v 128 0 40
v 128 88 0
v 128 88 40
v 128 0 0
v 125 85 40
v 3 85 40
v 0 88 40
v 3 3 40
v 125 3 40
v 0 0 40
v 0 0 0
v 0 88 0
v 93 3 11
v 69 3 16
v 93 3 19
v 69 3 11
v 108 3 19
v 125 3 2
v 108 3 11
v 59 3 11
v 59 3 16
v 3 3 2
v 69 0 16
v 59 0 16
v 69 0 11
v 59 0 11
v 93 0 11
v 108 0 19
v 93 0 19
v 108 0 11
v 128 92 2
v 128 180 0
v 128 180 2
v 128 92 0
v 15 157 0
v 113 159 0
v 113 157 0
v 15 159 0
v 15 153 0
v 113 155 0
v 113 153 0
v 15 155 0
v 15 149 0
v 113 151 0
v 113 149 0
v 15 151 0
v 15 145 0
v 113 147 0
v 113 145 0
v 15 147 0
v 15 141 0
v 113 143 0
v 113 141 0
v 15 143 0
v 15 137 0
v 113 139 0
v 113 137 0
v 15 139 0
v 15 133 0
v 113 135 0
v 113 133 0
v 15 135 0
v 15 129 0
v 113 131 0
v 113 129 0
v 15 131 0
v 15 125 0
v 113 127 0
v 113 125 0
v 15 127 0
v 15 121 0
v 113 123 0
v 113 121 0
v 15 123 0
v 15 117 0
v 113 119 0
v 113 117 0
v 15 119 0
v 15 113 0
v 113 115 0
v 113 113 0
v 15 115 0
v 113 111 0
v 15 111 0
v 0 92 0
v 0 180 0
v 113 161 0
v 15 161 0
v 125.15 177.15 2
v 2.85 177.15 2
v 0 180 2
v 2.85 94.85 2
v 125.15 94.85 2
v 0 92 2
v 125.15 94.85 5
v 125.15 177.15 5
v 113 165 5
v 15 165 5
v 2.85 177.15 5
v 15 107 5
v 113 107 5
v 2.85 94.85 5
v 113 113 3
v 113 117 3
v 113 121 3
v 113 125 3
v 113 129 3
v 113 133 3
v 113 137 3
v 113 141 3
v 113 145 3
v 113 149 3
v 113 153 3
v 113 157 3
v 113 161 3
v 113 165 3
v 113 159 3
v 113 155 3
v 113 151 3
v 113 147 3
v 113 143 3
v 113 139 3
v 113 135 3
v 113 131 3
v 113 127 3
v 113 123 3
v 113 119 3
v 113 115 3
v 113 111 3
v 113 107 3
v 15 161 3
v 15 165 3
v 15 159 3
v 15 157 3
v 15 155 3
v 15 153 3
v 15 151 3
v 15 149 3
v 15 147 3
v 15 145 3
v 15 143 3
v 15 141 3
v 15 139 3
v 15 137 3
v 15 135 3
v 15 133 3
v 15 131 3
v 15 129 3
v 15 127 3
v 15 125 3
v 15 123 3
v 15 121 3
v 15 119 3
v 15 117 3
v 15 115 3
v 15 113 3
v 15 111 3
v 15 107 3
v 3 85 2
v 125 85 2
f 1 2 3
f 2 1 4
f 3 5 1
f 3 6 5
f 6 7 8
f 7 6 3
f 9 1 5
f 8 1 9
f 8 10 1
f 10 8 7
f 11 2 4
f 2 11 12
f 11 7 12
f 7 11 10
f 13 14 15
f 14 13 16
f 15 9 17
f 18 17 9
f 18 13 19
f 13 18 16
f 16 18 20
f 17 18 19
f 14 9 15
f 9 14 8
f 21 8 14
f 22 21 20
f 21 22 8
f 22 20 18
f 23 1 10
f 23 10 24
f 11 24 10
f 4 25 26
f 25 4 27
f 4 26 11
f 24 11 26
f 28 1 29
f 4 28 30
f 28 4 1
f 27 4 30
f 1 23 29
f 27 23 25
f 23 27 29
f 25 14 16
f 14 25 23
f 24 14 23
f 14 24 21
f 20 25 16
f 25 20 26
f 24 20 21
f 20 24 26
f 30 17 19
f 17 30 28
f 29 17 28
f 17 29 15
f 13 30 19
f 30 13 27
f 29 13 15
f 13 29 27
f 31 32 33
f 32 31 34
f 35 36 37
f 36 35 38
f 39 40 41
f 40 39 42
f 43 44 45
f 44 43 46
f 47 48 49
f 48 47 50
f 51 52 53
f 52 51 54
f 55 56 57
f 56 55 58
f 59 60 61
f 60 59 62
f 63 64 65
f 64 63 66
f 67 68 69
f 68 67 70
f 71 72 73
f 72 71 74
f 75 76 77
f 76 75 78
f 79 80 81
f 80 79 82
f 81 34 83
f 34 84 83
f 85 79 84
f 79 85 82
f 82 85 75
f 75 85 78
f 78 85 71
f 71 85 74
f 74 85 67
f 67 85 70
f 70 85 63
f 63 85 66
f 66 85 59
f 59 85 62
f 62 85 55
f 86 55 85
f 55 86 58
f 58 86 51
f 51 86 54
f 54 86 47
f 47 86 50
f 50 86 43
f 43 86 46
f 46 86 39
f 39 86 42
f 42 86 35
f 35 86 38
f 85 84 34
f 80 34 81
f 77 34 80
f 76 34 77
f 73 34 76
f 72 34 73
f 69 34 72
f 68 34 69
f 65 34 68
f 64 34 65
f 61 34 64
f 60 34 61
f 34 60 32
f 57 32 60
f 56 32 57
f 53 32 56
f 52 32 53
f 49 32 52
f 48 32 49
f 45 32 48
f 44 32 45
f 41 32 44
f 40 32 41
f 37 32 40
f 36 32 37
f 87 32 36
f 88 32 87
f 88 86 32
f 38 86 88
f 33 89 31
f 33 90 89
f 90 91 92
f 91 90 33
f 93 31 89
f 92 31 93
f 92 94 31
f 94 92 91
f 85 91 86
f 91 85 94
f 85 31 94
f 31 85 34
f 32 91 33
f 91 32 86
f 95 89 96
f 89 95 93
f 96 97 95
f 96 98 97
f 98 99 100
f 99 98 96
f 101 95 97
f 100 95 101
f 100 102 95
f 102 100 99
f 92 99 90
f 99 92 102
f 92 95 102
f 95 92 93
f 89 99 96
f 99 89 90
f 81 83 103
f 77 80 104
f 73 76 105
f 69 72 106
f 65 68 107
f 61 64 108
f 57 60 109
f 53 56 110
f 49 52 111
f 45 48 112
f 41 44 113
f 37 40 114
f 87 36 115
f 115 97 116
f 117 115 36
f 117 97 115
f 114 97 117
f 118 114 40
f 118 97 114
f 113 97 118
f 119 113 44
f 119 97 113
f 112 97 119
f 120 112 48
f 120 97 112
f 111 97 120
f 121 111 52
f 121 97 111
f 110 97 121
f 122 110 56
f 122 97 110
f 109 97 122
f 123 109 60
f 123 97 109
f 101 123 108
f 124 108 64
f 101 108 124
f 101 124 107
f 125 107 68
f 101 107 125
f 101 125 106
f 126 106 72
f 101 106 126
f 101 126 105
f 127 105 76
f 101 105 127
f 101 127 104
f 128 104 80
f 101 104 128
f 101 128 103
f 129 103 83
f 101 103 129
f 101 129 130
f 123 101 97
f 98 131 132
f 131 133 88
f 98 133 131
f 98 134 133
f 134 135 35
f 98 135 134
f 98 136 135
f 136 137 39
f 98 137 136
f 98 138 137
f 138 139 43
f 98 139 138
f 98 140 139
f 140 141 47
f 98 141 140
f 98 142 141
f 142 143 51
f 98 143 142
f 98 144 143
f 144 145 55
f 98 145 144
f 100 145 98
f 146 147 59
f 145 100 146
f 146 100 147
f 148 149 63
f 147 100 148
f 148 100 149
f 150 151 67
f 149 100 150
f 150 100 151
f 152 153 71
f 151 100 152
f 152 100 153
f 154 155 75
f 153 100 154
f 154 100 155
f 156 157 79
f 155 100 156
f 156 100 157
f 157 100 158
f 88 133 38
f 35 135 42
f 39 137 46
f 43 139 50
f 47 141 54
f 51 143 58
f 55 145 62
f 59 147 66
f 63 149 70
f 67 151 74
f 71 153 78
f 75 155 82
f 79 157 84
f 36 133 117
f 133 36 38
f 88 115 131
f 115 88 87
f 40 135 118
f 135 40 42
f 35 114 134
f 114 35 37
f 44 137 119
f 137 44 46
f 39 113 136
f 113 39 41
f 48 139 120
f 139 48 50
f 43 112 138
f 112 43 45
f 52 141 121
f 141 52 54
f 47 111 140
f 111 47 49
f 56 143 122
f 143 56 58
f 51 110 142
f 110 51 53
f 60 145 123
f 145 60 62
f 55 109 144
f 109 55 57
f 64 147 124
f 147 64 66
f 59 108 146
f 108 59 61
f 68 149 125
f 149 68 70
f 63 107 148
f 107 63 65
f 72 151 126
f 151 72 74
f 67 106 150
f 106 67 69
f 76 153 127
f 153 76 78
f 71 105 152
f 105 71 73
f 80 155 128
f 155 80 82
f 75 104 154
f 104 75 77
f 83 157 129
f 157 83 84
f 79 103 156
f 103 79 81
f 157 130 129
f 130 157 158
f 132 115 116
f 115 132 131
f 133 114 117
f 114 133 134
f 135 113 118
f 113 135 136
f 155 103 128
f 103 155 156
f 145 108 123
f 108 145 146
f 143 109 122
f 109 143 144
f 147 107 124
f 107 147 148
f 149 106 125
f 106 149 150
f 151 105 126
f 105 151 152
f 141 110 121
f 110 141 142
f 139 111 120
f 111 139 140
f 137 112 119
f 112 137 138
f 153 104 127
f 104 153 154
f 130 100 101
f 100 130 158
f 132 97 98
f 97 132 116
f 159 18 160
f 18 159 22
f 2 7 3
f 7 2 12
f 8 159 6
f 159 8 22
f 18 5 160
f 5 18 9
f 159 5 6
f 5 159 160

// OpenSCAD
//Boks til liten forsterkerenhet.
//Dimensjoner
walls = 3;

inner_depth = 82;
inner_width = 122;

depth = inner_depth + 2 * walls;
width = inner_width + 2 * walls;

height = 40;
lid = 2;
lid_vents = 0.4; //how many percent of the lid should be vented?
vent_lid_hole_radius = 1.5;
lid_vents_marg = 5;
lid_vents_number = 20;
bottom = 2;

// Parameters for pin dimensions
pin_diameter = 2.5;  // Adjust diameter based on hole size on the ESP32
pin_height = 8;    // Height of the pins to hold the board

esp32_separation = 1;
esp32_power_width = 10;

// Parameters for ventilation grid
slot_width = 2;      // Width of each slot
slot_spacing = 4;   // Space between each slot
slot_margin = 15;    // Margin on each side for the slots
lid_insert = 3;
lid_pressure_plus = 0.3;


//Bottom
translate ([0,0,0]) cube([width, depth,bottom]);

//sides
//left
translate ([0,0,0]) cube([walls,depth,height]);

//right
translate ([width-walls,0,0]){
    cube ([walls,depth,height]);
}

//back
translate([0,depth-walls,0]){
   difference(){
       cube ([width, walls, height]);
	   //put holes to cutout below here...
       //line in
       //translate([width-30,walls-1,10])rotate([90,0,0])cylinder(r=2,h=walls*2,center=true,$fn=90);
       //translate ([width-15,-2,10]) cube ([8.1,walls*2,12.1]);

    //    //RELAY opening
    //    translate([width - walls - 30 - 2, -2, bottom + 9])
    //         cube([30, walls+5, walls*2]);

    //    //cable opening
    //    translate([22, -2, bottom + 25])
    //         cube([25, walls+5, walls*2]);


    }
}
//front
translate([0,0,0]){
    union() {
        //Power Cable for ESP32 usb, supports usb-c

        difference(){
            cube ([width, walls, height]);

            translate([width/2 - esp32_power_width/2, -1, bottom + 9])
                cube([esp32_power_width, walls + 2, walls+2]);


        //audio jack
        //    translate([width-walls-7, walls-1, bottom + 10 + 1.5])
        //         rotate([90,0,0])
        //         cylinder(r=3,h=walls*2,center=true,$fn=90);

        //sim card
            translate([width-walls-17-15, -1, bottom + 9])
                    cube([15, walls+2, 8]);

        //switch
        //    translate([walls+15, walls-1, bottom + 10 + 1.5])
        //         rotate([90,0,0])
        //         cylinder(r=15.5/2,h=walls*2,center=true,$fn=90);

        }
    }

}



// Lid with grid pattern
rotate([180, 0, 0]) {
    translate([0, -180, -lid]) {
        difference() {
            union() {
                // Outer part of the lid
                translate([0, 0, 0]) cube([width, depth, lid]);

                // Inner part to hollow out the lid
                translate([walls - lid_pressure_plus / 2, walls - lid_pressure_plus / 2, -lid_insert])
                    cube([
                        width - 2 * walls + lid_pressure_plus,
                        depth - 2 * walls + lid_pressure_plus,
                        lid_insert]);

            }

            translate([slot_margin, slot_margin, -lid_insert-1])
                cube([width - 2 * slot_margin, depth - 2 * slot_margin, lid_insert]);

            // translate([slot_margin, slot_margin, +lid-lid_insert-5])
            //     cube([width - 2 * slot_margin, depth - 2 * slot_margin, lid_insert]);

            // Horizontal slots for ventilation with margins on all sides
            for (y = [slot_margin + slot_spacing : slot_spacing : depth - slot_margin - slot_spacing]) {
                translate([slot_margin, y, +lid-lid_insert-5])
                    cube([width - 2 * slot_margin, slot_width, lid + lid_insert + 5]);
            }

        }
    }
}



// Creating pins for mounting ESP32
// translate([
//         walls + esp32_separation + pin_diameter / 2,
//         depth - walls - esp32_separation - pin_diameter / 2,
//         bottomspace + bottom
//     ])
//     cylinder(d = pin_diameter, h = pin_height);

// translate([
//         walls + esp32_separation + pin_diameter / 2 + 25,
//         depth - walls - esp32_separation - pin_diameter / 2,
//         bottomspace + bottom
//     ])
//     cylinder(d = pin_diameter, h = pin_height);

// translate([
//         walls + esp32_separation + pin_diameter / 2,
//         depth - walls - esp32_separation - pin_diameter / 2 - 50,
//         bottomspace + bottom
//     ])
//     cylinder(d = pin_diameter, h = pin_height);

// translate([
//         walls + esp32_separation + pin_diameter / 2 + 25,
//         depth - walls - esp32_separation - pin_diameter / 2 - 50,
//         bottomspace + bottom
//     ])
//     cylinder(d = pin_diameter, h = pin_height);


//Pins for Relay
// translate([
//         width - walls - esp32_separation - pin_diameter / 2,
//         depth - walls - esp32_separation - pin_diameter / 2,
//         bottomspace + bottom
//     ])
//     cylinder(d = pin_diameter, h = pin_height);
// translate([
//         width - walls - esp32_separation - pin_diameter / 2 - 33,
//         depth - walls - esp32_separation - pin_diameter / 2,
//         bottomspace + bottom
//     ])
//     cylinder(d = pin_diameter, h = pin_height);

// translate([
//         width - walls - esp32_separation - pin_diameter / 2,
//         depth - walls - esp32_separation - pin_diameter / 2 - 45,
//         bottomspace + bottom
//     ])
//     cylinder(d = pin_diameter, h = pin_height);

// translate([
//         width - walls - esp32_separation - pin_diameter / 2 - 33,
//         depth - walls - esp32_separation - pin_diameter / 2 - 45,
//         bottomspace + bottom
//     ])
//     cylinder(d = pin_diameter, h = pin_height);
